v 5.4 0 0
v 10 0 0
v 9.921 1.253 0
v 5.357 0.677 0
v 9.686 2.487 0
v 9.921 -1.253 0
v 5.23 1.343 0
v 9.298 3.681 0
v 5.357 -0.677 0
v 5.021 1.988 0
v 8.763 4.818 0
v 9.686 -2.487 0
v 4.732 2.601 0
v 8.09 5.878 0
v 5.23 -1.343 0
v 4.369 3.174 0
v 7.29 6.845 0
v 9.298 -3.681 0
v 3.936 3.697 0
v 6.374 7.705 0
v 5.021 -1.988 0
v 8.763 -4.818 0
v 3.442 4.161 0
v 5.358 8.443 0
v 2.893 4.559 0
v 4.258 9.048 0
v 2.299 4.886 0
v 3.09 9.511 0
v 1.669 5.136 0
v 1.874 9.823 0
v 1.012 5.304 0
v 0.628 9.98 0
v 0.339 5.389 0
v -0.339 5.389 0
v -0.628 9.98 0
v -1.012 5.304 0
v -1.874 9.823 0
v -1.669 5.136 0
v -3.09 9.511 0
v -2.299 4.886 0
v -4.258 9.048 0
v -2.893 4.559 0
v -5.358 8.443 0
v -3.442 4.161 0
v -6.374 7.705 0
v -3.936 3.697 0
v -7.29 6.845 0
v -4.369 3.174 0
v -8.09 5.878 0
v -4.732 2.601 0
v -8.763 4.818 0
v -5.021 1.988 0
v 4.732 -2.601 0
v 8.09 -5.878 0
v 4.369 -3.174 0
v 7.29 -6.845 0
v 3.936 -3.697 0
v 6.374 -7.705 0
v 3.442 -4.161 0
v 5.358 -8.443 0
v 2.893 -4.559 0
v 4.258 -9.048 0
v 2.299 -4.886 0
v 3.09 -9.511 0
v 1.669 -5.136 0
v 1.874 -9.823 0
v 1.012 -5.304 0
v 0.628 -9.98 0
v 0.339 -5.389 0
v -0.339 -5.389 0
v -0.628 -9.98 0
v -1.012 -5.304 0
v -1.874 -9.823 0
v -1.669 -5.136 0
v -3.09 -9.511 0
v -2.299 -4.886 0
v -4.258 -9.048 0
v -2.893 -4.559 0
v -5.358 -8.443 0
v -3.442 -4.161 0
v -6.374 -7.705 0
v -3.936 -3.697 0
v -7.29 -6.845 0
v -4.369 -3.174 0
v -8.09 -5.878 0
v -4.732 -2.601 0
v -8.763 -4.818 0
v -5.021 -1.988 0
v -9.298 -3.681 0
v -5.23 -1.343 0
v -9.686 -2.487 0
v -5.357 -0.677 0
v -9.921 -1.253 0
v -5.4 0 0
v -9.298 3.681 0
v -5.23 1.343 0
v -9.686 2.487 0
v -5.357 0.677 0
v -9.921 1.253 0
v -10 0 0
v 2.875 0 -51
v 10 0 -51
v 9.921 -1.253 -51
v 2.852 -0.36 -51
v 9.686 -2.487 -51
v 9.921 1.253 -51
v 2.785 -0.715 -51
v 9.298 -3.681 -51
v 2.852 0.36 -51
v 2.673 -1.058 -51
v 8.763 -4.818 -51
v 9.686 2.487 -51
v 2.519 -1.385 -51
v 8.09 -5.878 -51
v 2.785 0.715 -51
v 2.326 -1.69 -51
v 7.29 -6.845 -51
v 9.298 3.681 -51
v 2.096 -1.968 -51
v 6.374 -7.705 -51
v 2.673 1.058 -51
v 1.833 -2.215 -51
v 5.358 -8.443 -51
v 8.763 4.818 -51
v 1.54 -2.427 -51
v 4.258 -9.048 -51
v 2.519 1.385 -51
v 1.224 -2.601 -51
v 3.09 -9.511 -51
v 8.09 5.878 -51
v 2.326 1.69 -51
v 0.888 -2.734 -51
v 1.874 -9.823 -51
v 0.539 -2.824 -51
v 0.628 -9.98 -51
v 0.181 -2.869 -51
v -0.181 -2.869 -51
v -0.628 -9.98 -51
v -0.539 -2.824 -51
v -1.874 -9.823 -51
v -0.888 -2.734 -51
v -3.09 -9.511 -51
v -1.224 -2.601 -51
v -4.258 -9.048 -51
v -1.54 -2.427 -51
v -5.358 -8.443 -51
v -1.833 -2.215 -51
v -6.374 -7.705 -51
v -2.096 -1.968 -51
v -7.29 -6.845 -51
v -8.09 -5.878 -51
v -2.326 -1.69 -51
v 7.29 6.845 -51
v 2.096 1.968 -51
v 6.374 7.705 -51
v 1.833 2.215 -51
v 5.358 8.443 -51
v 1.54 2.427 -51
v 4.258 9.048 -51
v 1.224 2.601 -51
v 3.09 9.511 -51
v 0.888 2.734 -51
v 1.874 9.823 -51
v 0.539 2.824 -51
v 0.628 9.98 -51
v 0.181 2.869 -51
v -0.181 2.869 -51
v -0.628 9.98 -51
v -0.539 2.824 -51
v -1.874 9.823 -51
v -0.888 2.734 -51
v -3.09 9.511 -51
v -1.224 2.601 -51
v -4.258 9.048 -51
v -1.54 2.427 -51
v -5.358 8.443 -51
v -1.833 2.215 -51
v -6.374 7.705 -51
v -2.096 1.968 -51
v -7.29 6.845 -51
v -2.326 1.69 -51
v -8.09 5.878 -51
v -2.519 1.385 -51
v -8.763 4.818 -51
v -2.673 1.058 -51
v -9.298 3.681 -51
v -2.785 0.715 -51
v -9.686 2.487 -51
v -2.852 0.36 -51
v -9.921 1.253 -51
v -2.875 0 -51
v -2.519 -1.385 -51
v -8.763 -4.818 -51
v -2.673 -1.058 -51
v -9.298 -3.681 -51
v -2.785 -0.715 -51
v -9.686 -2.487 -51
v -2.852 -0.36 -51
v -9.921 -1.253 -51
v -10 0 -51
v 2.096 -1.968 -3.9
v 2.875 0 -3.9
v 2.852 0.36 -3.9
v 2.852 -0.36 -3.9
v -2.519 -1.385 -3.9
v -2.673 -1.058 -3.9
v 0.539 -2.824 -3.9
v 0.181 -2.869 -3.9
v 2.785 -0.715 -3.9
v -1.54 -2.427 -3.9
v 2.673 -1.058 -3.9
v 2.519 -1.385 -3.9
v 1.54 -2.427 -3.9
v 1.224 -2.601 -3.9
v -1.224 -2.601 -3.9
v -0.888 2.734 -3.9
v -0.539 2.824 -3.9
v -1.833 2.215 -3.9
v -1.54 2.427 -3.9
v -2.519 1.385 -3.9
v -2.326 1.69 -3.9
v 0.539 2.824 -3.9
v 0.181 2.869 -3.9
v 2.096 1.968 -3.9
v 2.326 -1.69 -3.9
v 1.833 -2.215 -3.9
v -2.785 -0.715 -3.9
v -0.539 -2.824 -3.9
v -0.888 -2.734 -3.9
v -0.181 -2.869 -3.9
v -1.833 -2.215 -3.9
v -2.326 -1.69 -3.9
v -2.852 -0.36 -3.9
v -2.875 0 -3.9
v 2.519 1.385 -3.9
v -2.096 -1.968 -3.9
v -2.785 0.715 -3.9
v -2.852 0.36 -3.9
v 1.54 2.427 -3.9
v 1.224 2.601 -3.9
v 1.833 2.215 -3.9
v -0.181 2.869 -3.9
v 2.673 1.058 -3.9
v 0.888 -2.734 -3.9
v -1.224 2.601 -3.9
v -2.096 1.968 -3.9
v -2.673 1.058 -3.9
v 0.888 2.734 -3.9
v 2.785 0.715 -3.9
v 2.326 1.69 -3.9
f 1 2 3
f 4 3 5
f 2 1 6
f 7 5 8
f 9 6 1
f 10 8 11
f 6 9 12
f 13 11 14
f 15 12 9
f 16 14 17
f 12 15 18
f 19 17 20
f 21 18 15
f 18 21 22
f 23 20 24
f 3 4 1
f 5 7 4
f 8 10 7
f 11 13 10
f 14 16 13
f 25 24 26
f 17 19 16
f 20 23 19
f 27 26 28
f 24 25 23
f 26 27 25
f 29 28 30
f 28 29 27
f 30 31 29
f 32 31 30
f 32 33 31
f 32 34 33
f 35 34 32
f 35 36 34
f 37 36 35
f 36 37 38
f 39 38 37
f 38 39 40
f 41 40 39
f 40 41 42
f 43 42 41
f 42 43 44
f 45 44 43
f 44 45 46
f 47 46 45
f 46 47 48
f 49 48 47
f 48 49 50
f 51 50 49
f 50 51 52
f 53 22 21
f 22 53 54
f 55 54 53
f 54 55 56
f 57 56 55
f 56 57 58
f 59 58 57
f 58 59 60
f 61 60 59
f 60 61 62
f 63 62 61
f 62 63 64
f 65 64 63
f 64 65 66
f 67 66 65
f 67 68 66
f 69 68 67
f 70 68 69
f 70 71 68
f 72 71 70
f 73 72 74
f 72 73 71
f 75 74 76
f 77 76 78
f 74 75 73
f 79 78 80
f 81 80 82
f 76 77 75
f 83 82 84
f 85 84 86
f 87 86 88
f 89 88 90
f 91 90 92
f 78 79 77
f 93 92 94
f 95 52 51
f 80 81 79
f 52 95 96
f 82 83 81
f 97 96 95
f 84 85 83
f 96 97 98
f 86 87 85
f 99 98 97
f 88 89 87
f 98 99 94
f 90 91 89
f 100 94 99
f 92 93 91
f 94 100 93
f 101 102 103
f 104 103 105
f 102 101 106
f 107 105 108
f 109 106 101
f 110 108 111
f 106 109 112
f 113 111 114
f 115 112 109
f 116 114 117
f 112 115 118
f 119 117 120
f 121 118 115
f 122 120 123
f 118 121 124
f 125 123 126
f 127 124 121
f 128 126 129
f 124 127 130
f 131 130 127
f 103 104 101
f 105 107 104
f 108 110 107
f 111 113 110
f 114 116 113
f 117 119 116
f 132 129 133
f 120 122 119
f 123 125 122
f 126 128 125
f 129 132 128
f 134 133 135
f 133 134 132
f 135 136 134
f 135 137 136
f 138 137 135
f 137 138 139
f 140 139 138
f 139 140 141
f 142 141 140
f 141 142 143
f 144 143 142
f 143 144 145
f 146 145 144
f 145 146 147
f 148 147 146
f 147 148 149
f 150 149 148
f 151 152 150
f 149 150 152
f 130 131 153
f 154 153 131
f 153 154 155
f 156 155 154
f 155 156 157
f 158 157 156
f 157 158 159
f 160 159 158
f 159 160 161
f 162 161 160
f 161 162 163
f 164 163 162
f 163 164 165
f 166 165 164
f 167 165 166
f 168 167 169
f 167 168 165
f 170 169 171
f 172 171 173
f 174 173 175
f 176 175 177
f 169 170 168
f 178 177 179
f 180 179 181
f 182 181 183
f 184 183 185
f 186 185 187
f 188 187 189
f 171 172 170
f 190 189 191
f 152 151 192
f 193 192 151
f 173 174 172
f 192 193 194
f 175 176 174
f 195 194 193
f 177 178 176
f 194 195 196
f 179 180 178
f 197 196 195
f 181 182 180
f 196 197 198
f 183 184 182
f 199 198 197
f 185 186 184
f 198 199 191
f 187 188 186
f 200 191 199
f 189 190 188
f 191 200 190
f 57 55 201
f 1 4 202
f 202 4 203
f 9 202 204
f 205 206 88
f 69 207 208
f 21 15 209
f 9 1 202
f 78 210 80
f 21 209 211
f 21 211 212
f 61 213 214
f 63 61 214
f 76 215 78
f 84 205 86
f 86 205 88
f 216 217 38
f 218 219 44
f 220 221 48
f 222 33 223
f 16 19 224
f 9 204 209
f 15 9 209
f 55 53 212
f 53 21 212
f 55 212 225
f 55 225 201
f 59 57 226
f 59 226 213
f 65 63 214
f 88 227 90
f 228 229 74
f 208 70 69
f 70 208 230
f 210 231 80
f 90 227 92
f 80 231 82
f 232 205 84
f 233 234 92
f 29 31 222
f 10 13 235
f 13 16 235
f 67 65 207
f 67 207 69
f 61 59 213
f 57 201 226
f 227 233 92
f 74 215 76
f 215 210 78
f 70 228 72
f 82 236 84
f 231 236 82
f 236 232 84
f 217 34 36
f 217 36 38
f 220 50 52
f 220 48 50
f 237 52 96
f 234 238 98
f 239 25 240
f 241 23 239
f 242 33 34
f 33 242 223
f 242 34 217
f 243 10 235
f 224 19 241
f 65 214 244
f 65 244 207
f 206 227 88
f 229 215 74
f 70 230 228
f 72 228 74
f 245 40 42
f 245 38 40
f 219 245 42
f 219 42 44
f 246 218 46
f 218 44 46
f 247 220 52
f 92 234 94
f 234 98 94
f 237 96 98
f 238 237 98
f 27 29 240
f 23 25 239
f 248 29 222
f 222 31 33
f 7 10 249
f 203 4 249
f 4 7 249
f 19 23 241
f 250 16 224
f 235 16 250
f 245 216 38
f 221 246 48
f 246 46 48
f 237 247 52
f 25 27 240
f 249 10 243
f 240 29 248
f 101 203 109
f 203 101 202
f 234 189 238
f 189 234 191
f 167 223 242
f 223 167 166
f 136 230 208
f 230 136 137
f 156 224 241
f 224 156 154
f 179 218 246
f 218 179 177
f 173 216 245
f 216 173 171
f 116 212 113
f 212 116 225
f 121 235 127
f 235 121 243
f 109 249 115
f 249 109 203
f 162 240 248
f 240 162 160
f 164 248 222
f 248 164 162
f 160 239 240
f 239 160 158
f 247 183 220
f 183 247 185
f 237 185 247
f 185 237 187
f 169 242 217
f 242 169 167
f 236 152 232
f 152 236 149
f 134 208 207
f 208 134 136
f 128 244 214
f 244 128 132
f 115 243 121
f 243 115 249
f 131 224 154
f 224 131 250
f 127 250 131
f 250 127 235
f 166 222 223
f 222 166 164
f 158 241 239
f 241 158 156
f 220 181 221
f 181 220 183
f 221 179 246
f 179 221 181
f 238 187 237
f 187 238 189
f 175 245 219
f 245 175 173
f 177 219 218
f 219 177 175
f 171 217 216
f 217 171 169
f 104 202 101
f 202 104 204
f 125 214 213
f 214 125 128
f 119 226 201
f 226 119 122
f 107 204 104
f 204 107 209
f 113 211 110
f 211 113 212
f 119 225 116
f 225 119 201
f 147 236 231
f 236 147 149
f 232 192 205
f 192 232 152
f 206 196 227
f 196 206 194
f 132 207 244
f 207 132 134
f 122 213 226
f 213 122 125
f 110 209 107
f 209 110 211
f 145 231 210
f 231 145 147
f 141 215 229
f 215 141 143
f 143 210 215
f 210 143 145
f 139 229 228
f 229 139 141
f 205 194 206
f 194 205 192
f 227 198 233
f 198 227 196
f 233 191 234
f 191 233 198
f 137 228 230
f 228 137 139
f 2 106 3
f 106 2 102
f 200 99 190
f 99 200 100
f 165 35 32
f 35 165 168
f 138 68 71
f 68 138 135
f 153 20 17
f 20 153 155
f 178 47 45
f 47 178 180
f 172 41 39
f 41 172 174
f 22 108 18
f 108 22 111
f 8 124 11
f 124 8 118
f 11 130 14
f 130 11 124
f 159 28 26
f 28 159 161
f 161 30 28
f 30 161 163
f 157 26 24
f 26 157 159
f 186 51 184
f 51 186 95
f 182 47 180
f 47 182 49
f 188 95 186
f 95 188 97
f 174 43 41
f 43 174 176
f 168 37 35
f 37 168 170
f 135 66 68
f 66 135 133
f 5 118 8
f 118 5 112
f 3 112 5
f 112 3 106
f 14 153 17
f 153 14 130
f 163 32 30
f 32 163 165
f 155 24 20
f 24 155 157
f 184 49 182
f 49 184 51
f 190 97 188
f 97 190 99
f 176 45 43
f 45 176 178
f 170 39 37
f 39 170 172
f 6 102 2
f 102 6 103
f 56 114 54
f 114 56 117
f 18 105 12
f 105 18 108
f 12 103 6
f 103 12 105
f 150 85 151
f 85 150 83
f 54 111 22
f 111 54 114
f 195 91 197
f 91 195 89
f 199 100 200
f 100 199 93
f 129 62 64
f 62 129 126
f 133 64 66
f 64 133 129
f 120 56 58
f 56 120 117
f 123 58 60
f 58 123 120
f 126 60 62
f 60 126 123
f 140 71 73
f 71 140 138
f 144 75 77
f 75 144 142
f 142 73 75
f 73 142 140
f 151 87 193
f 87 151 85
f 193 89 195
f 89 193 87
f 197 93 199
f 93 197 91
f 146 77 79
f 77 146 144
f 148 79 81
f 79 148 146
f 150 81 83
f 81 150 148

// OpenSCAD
$fn = 50;


difference() {
	union() {
		translate(v = [0, 0, -51.0000000000]) {
			cylinder(h = 51, r = 10.0000000000);
		}
		cylinder(h = 0, r = 16.0000000000);
	}
	union() {
		translate(v = [0, 0, 0]) {
			rotate(a = [0, 0, 0]) {
				difference() {
					union() {
						#translate(v = [0, 0, -51.0000000000]) {
							cylinder(h = 51, r = 2.6000000000);
						}
						#translate(v = [0, 0, -3.9000000000]) {
							cylinder(h = 3.9000000000, r1 = 2.8750000000, r2 = 5.4000000000);
						}
						#translate(v = [0, 0, -51.0000000000]) {
							cylinder(h = 51, r = 2.8750000000);
						}
						#translate(v = [0, 0, -51.0000000000]) {
							cylinder(h = 51, r = 2.6000000000);
						}
					}
					union();
				}
			}
		}
	}
}
